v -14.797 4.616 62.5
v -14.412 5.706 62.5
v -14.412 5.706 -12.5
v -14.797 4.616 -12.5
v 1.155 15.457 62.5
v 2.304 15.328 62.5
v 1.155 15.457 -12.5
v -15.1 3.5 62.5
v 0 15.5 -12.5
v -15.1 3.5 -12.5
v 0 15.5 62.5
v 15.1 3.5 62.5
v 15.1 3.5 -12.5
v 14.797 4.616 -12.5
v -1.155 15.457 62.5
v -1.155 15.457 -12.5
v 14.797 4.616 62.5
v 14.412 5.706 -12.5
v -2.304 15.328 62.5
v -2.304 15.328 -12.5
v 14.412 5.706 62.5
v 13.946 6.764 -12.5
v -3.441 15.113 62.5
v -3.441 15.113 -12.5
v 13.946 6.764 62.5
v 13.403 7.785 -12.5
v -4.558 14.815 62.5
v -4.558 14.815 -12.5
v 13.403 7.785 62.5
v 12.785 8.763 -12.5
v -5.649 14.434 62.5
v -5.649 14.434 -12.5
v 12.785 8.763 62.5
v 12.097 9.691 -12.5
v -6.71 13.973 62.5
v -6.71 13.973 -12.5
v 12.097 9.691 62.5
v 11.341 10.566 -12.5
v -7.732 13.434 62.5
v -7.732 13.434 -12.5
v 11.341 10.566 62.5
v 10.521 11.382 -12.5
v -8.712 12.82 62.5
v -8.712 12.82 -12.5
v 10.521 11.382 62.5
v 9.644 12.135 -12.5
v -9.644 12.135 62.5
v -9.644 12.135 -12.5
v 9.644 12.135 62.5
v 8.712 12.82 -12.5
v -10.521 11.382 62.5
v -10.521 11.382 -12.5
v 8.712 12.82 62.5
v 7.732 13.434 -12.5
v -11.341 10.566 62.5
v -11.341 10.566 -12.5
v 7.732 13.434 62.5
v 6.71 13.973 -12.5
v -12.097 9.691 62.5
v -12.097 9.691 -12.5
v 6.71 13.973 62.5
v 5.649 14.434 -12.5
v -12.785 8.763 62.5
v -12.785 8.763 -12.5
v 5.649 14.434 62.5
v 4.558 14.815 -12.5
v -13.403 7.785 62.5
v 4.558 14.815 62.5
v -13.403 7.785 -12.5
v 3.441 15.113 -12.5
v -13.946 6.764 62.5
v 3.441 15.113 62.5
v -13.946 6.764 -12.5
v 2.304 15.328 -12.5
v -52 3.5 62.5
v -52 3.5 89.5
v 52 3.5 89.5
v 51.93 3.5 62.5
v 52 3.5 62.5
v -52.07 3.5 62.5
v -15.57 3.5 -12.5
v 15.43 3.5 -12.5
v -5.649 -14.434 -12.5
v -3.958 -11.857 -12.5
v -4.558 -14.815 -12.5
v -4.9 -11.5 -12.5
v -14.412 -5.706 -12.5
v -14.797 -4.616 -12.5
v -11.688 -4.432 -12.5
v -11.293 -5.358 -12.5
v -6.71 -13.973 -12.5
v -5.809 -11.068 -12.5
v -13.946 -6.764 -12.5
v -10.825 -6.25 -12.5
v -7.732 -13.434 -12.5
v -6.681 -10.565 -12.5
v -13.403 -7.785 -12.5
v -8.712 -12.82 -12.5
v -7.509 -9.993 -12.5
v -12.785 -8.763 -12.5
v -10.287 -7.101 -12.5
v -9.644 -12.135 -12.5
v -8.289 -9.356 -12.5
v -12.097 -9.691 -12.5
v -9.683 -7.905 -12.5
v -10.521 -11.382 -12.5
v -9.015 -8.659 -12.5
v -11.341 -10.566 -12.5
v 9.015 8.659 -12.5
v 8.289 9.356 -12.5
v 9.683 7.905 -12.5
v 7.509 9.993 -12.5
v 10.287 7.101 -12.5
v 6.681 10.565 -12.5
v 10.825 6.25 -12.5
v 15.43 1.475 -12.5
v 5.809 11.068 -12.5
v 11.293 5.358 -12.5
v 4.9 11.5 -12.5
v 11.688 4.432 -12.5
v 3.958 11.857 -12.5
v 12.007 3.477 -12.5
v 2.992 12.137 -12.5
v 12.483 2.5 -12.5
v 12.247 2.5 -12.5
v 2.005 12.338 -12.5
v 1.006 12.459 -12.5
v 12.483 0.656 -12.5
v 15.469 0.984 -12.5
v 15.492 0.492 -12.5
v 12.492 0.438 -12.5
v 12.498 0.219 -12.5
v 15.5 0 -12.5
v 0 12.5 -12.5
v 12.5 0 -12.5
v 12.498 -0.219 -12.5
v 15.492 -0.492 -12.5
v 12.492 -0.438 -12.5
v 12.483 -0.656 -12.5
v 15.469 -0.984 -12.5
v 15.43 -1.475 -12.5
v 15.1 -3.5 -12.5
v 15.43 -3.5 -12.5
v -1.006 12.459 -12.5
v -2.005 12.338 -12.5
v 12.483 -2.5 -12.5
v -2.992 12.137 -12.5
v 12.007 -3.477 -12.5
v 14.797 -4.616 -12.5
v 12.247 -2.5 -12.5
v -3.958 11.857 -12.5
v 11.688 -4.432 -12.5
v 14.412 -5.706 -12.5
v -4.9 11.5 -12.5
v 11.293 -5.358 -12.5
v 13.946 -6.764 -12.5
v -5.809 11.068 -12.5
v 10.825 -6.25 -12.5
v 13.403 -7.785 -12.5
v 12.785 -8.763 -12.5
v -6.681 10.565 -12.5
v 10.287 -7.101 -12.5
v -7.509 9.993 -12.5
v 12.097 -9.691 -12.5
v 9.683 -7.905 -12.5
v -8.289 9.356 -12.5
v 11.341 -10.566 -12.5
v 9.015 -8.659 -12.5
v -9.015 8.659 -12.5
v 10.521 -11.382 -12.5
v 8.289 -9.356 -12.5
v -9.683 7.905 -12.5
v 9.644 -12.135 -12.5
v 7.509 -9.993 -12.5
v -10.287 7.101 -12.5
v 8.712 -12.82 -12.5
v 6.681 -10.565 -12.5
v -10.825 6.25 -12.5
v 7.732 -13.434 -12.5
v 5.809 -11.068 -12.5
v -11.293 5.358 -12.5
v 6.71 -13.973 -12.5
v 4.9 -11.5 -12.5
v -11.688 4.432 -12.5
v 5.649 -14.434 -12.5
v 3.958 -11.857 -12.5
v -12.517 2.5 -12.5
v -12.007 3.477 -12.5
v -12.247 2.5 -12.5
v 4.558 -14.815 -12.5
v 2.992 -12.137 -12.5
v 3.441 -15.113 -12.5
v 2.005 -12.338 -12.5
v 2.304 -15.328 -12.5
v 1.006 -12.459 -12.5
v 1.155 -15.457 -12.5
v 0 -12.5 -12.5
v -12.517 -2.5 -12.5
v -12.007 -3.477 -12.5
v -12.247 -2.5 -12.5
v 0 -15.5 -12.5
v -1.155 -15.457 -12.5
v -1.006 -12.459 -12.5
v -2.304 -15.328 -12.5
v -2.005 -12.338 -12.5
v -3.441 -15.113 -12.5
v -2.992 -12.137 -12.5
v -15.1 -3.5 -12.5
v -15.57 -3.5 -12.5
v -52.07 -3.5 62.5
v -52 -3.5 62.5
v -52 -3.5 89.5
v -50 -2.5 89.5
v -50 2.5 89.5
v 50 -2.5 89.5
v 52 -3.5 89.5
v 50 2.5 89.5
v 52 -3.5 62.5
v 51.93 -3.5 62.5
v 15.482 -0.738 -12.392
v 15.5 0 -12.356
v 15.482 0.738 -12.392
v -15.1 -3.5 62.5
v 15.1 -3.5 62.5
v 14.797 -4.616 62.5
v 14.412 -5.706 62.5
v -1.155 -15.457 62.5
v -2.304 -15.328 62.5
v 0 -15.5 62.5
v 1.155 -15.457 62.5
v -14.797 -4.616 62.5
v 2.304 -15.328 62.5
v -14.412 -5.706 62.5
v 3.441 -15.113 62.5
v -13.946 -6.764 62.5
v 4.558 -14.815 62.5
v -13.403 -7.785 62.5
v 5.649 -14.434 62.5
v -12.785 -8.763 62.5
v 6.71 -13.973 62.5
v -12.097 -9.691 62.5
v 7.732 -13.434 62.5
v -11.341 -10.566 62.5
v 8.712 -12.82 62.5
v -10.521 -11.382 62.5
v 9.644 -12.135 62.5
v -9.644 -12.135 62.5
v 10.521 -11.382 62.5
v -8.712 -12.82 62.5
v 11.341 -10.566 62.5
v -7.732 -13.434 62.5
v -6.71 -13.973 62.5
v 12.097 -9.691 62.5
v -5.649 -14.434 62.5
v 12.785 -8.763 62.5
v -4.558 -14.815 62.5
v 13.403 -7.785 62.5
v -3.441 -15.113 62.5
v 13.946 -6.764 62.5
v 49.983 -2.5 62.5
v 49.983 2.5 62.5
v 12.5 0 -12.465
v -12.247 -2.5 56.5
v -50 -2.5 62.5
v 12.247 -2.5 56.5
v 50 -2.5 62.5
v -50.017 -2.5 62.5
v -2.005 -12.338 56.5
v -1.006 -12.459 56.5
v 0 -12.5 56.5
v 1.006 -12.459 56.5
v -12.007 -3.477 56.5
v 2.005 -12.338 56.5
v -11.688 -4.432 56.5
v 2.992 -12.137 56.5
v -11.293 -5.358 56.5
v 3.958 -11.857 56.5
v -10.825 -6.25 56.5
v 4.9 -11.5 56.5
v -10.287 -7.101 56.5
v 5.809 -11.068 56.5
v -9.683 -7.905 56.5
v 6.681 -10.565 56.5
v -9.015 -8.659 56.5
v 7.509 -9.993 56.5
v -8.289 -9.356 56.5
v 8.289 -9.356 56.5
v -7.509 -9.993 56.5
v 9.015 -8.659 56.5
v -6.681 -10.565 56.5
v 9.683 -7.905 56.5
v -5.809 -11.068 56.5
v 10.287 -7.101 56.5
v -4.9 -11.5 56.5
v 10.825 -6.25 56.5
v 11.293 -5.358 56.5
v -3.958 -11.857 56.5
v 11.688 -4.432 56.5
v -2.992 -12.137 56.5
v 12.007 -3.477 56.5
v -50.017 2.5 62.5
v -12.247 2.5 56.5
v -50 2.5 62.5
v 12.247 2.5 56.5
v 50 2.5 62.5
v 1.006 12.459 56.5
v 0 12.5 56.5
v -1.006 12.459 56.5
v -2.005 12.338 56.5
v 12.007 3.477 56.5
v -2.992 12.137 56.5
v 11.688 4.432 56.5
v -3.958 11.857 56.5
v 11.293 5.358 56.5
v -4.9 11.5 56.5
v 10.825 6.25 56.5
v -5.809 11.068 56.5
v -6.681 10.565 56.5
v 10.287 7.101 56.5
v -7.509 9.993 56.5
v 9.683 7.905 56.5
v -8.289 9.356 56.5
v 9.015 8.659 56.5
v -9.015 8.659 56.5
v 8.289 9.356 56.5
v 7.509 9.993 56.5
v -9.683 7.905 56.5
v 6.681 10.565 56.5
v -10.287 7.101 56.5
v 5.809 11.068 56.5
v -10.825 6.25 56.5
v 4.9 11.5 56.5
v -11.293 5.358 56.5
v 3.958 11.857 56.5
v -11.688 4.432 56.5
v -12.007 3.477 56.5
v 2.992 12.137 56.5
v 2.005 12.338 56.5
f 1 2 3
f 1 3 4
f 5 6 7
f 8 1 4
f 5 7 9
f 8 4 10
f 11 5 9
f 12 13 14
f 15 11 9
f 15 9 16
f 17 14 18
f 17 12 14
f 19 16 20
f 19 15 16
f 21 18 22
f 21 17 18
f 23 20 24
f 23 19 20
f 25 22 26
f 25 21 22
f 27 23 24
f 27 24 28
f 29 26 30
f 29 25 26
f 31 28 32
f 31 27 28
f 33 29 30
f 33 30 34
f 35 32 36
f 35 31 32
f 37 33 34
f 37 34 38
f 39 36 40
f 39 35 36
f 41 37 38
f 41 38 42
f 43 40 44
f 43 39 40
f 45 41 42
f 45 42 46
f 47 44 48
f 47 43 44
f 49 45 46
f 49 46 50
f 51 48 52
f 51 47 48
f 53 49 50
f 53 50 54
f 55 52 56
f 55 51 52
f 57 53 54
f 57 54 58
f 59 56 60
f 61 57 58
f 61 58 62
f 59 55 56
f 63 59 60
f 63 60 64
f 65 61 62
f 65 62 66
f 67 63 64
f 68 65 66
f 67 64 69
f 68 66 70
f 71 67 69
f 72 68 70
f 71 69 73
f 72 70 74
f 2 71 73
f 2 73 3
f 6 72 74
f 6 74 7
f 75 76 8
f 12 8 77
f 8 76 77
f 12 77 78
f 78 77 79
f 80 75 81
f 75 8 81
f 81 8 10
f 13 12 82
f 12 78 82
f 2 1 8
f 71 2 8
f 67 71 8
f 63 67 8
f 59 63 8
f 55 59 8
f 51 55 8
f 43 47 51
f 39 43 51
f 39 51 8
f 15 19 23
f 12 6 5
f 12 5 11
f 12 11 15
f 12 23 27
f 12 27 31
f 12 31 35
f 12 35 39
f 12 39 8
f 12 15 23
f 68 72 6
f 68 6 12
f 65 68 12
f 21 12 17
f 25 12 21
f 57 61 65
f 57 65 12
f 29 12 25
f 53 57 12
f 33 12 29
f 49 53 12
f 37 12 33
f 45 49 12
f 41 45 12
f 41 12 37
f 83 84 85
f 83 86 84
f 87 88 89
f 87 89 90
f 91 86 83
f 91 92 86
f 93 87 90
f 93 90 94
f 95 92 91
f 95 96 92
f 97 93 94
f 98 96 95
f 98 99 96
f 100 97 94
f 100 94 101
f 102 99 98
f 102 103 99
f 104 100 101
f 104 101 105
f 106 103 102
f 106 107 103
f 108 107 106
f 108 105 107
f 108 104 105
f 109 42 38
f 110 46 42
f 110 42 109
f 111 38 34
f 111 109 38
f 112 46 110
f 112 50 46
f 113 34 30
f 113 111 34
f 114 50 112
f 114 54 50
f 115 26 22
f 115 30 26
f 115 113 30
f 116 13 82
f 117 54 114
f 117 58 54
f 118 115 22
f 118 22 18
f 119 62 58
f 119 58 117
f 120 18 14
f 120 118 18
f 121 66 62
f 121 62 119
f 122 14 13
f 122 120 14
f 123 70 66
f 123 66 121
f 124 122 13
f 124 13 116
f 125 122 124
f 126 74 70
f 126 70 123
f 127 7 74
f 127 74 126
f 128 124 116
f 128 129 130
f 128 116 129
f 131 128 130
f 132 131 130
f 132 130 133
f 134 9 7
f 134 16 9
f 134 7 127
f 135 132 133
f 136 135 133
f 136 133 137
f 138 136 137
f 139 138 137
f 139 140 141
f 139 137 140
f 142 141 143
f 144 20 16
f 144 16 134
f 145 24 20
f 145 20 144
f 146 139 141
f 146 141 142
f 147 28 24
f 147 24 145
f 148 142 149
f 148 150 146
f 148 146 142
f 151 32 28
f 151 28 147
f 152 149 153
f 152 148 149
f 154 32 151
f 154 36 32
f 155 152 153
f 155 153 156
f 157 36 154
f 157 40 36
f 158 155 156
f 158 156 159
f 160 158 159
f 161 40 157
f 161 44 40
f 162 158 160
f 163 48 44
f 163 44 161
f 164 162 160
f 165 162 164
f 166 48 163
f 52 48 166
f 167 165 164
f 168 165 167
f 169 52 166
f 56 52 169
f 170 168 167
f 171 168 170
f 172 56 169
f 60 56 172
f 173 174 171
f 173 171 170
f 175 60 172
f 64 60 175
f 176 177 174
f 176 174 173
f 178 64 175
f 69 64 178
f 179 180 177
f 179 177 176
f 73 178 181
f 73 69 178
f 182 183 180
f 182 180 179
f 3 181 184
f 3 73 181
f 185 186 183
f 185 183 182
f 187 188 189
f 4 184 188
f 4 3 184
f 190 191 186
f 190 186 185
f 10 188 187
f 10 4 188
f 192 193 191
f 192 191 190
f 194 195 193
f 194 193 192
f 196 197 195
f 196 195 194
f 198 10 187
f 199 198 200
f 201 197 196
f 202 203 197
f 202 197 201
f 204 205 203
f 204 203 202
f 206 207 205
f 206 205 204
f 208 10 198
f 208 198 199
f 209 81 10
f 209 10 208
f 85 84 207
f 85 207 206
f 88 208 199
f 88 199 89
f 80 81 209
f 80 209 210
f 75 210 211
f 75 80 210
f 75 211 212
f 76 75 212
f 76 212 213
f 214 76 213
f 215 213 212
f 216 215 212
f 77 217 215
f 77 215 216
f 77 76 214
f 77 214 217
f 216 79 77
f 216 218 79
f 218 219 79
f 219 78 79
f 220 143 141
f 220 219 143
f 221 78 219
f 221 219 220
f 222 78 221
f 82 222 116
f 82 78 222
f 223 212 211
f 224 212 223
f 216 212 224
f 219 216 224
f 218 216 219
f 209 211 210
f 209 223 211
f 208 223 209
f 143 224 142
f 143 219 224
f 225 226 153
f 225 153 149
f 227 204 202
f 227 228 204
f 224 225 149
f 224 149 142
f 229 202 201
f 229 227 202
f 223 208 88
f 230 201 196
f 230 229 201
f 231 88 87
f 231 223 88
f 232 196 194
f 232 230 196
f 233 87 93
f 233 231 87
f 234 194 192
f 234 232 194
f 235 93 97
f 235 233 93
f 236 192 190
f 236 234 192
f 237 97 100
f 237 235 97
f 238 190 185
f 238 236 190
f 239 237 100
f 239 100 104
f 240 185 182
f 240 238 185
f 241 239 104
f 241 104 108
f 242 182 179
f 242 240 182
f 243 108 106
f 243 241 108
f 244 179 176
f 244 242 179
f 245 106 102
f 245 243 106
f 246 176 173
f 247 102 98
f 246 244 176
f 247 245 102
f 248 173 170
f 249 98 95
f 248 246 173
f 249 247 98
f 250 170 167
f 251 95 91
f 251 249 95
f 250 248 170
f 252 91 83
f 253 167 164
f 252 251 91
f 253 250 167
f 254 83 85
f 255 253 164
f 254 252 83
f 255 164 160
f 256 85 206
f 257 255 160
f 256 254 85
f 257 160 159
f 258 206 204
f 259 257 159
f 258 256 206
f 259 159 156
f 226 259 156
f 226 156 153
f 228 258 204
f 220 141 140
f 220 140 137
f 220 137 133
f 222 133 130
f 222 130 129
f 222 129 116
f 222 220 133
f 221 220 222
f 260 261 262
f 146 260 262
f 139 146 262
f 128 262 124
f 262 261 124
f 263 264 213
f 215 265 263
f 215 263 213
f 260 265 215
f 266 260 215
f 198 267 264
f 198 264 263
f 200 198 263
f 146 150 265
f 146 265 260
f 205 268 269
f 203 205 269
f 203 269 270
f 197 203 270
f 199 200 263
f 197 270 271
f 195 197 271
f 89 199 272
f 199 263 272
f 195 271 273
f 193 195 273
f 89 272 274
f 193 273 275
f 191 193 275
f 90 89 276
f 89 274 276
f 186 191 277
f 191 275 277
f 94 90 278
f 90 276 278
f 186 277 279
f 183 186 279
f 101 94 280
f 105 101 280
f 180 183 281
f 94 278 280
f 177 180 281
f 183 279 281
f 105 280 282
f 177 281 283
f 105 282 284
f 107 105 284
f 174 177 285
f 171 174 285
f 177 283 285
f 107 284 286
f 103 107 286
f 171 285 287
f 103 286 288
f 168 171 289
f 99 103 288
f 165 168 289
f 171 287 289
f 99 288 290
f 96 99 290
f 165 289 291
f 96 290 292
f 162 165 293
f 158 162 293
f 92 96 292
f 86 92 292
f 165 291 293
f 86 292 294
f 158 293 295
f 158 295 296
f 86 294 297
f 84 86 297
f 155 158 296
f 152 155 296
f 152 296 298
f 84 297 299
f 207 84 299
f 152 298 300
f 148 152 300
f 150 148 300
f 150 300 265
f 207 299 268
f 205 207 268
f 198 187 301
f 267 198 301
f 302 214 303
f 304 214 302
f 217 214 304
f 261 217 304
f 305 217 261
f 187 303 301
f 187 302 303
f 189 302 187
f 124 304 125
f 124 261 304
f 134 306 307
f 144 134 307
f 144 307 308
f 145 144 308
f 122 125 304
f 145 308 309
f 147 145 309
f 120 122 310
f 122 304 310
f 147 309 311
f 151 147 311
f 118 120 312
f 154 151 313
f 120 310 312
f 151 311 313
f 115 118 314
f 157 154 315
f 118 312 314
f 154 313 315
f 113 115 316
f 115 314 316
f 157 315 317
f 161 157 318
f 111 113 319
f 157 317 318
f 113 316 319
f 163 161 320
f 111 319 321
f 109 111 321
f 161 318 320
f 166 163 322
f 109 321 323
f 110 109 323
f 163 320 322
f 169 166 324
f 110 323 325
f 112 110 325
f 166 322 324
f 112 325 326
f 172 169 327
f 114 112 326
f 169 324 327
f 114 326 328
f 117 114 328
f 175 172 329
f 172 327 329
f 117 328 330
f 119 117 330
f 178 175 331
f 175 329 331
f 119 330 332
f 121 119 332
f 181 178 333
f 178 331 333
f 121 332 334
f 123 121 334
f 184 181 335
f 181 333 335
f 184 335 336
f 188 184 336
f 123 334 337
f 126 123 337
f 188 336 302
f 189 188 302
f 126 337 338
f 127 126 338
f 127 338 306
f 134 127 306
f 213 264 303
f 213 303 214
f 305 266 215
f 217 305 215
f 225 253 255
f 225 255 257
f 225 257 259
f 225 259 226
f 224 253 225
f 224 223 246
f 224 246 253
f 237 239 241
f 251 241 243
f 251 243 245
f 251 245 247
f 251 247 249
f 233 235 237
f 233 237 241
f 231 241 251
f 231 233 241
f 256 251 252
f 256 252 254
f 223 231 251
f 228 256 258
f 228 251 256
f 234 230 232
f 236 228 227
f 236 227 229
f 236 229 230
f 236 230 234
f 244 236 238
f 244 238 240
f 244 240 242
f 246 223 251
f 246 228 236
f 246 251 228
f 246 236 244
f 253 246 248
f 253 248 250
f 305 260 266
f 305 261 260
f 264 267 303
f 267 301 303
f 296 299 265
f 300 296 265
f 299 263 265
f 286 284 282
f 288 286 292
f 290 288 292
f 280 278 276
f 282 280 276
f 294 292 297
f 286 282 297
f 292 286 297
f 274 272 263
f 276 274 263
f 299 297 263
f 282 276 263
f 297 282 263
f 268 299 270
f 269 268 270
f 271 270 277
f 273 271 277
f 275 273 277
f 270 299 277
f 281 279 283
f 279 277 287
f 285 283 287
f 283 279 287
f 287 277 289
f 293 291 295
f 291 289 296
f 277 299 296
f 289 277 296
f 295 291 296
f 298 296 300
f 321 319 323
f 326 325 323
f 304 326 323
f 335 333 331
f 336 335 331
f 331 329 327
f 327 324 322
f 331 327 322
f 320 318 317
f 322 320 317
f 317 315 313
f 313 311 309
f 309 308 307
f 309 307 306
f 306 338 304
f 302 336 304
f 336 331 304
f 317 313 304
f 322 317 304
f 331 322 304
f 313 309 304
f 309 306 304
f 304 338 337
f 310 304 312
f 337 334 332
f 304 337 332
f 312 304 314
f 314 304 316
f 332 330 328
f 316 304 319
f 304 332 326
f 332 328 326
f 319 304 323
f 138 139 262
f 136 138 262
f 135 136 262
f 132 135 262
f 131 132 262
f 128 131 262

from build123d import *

# Parameters (mm, degrees)
BOX_W             = 100
BOX_H             = 5
BOX_DEPTH         = 27
PAD_DEPTH         = 2.5
CYLINDER_R        = 12.5
CYLINDER_DEPTH    = 72
BOX001_W          = 104
BOX001_H          = 7
BOX001_DEPTH      = 27
PAD001_DEPTH      = 3.5
CYLINDER001_R     = 15.5
CYLINDER001_DEPTH = 75


with BuildPart() as tip_hole:
    # Box → Box (new body)
    with BuildSketch(Plane(origin=(-50, -2.5, 62.5), x_dir=(1, 0, 0), z_dir=(0, 0, 1))):
        with Locations((50, 2.5)):
            Rectangle(BOX_W, BOX_H)
    extrude(amount=BOX_DEPTH)


with BuildPart() as internal_duct:
    # Sketch → Pad (new body, symmetric)
    with BuildSketch(Plane(origin=(-68, 0, -12.5), x_dir=(1, 0, 0), z_dir=(0, -1, 0))):
        Polygon((55.48275, 0), (17.98275, 75), (117.98275, 75), (80.48275, 0), align=None)
    extrude(amount=PAD_DEPTH, both=True)


with BuildPart() as holes:
    # Cylinder → Cylinder (new body)
    with BuildSketch(Plane.XY.offset(-15.5)):
        Circle(CYLINDER_R)
    extrude(amount=CYLINDER_DEPTH)

    # Fusion: union tip hole, internal duct
    add(tip_hole.part)
    add(internal_duct.part)


with BuildPart() as tip_body:
    # Box001 → Box001 (new body)
    with BuildSketch(Plane(origin=(-52, -3.5, 62.5), x_dir=(1, 0, 0), z_dir=(0, 0, 1))):
        with Locations((52, 3.5)):
            Rectangle(BOX001_W, BOX001_H)
    extrude(amount=BOX001_DEPTH)


with BuildPart() as internal_duct_wall:
    # Sketch001 → Pad001 (new body, symmetric)
    with BuildSketch(Plane(origin=(-65.5, 0, -12.5), x_dir=(1, 0, 0), z_dir=(0, -1, 0))):
        Polygon((49.929678, 0), (13.429678, 75), (117.429678, 75), (80.929678, 0), align=None)
    extrude(amount=PAD001_DEPTH, both=True)


with BuildPart() as body_with_holes:
    # Cylinder001 → Cylinder001 (new body)
    with BuildSketch(Plane.XY.offset(-12.5)):
        Circle(CYLINDER001_R)
    extrude(amount=CYLINDER001_DEPTH)

    # Fusion001: union tip body, internal duct wall
    add(tip_body.part)
    add(internal_duct_wall.part)

    # Cut: cut Holes
    add(holes.part, mode=Mode.SUBTRACT)


solid = body_with_holes.part
